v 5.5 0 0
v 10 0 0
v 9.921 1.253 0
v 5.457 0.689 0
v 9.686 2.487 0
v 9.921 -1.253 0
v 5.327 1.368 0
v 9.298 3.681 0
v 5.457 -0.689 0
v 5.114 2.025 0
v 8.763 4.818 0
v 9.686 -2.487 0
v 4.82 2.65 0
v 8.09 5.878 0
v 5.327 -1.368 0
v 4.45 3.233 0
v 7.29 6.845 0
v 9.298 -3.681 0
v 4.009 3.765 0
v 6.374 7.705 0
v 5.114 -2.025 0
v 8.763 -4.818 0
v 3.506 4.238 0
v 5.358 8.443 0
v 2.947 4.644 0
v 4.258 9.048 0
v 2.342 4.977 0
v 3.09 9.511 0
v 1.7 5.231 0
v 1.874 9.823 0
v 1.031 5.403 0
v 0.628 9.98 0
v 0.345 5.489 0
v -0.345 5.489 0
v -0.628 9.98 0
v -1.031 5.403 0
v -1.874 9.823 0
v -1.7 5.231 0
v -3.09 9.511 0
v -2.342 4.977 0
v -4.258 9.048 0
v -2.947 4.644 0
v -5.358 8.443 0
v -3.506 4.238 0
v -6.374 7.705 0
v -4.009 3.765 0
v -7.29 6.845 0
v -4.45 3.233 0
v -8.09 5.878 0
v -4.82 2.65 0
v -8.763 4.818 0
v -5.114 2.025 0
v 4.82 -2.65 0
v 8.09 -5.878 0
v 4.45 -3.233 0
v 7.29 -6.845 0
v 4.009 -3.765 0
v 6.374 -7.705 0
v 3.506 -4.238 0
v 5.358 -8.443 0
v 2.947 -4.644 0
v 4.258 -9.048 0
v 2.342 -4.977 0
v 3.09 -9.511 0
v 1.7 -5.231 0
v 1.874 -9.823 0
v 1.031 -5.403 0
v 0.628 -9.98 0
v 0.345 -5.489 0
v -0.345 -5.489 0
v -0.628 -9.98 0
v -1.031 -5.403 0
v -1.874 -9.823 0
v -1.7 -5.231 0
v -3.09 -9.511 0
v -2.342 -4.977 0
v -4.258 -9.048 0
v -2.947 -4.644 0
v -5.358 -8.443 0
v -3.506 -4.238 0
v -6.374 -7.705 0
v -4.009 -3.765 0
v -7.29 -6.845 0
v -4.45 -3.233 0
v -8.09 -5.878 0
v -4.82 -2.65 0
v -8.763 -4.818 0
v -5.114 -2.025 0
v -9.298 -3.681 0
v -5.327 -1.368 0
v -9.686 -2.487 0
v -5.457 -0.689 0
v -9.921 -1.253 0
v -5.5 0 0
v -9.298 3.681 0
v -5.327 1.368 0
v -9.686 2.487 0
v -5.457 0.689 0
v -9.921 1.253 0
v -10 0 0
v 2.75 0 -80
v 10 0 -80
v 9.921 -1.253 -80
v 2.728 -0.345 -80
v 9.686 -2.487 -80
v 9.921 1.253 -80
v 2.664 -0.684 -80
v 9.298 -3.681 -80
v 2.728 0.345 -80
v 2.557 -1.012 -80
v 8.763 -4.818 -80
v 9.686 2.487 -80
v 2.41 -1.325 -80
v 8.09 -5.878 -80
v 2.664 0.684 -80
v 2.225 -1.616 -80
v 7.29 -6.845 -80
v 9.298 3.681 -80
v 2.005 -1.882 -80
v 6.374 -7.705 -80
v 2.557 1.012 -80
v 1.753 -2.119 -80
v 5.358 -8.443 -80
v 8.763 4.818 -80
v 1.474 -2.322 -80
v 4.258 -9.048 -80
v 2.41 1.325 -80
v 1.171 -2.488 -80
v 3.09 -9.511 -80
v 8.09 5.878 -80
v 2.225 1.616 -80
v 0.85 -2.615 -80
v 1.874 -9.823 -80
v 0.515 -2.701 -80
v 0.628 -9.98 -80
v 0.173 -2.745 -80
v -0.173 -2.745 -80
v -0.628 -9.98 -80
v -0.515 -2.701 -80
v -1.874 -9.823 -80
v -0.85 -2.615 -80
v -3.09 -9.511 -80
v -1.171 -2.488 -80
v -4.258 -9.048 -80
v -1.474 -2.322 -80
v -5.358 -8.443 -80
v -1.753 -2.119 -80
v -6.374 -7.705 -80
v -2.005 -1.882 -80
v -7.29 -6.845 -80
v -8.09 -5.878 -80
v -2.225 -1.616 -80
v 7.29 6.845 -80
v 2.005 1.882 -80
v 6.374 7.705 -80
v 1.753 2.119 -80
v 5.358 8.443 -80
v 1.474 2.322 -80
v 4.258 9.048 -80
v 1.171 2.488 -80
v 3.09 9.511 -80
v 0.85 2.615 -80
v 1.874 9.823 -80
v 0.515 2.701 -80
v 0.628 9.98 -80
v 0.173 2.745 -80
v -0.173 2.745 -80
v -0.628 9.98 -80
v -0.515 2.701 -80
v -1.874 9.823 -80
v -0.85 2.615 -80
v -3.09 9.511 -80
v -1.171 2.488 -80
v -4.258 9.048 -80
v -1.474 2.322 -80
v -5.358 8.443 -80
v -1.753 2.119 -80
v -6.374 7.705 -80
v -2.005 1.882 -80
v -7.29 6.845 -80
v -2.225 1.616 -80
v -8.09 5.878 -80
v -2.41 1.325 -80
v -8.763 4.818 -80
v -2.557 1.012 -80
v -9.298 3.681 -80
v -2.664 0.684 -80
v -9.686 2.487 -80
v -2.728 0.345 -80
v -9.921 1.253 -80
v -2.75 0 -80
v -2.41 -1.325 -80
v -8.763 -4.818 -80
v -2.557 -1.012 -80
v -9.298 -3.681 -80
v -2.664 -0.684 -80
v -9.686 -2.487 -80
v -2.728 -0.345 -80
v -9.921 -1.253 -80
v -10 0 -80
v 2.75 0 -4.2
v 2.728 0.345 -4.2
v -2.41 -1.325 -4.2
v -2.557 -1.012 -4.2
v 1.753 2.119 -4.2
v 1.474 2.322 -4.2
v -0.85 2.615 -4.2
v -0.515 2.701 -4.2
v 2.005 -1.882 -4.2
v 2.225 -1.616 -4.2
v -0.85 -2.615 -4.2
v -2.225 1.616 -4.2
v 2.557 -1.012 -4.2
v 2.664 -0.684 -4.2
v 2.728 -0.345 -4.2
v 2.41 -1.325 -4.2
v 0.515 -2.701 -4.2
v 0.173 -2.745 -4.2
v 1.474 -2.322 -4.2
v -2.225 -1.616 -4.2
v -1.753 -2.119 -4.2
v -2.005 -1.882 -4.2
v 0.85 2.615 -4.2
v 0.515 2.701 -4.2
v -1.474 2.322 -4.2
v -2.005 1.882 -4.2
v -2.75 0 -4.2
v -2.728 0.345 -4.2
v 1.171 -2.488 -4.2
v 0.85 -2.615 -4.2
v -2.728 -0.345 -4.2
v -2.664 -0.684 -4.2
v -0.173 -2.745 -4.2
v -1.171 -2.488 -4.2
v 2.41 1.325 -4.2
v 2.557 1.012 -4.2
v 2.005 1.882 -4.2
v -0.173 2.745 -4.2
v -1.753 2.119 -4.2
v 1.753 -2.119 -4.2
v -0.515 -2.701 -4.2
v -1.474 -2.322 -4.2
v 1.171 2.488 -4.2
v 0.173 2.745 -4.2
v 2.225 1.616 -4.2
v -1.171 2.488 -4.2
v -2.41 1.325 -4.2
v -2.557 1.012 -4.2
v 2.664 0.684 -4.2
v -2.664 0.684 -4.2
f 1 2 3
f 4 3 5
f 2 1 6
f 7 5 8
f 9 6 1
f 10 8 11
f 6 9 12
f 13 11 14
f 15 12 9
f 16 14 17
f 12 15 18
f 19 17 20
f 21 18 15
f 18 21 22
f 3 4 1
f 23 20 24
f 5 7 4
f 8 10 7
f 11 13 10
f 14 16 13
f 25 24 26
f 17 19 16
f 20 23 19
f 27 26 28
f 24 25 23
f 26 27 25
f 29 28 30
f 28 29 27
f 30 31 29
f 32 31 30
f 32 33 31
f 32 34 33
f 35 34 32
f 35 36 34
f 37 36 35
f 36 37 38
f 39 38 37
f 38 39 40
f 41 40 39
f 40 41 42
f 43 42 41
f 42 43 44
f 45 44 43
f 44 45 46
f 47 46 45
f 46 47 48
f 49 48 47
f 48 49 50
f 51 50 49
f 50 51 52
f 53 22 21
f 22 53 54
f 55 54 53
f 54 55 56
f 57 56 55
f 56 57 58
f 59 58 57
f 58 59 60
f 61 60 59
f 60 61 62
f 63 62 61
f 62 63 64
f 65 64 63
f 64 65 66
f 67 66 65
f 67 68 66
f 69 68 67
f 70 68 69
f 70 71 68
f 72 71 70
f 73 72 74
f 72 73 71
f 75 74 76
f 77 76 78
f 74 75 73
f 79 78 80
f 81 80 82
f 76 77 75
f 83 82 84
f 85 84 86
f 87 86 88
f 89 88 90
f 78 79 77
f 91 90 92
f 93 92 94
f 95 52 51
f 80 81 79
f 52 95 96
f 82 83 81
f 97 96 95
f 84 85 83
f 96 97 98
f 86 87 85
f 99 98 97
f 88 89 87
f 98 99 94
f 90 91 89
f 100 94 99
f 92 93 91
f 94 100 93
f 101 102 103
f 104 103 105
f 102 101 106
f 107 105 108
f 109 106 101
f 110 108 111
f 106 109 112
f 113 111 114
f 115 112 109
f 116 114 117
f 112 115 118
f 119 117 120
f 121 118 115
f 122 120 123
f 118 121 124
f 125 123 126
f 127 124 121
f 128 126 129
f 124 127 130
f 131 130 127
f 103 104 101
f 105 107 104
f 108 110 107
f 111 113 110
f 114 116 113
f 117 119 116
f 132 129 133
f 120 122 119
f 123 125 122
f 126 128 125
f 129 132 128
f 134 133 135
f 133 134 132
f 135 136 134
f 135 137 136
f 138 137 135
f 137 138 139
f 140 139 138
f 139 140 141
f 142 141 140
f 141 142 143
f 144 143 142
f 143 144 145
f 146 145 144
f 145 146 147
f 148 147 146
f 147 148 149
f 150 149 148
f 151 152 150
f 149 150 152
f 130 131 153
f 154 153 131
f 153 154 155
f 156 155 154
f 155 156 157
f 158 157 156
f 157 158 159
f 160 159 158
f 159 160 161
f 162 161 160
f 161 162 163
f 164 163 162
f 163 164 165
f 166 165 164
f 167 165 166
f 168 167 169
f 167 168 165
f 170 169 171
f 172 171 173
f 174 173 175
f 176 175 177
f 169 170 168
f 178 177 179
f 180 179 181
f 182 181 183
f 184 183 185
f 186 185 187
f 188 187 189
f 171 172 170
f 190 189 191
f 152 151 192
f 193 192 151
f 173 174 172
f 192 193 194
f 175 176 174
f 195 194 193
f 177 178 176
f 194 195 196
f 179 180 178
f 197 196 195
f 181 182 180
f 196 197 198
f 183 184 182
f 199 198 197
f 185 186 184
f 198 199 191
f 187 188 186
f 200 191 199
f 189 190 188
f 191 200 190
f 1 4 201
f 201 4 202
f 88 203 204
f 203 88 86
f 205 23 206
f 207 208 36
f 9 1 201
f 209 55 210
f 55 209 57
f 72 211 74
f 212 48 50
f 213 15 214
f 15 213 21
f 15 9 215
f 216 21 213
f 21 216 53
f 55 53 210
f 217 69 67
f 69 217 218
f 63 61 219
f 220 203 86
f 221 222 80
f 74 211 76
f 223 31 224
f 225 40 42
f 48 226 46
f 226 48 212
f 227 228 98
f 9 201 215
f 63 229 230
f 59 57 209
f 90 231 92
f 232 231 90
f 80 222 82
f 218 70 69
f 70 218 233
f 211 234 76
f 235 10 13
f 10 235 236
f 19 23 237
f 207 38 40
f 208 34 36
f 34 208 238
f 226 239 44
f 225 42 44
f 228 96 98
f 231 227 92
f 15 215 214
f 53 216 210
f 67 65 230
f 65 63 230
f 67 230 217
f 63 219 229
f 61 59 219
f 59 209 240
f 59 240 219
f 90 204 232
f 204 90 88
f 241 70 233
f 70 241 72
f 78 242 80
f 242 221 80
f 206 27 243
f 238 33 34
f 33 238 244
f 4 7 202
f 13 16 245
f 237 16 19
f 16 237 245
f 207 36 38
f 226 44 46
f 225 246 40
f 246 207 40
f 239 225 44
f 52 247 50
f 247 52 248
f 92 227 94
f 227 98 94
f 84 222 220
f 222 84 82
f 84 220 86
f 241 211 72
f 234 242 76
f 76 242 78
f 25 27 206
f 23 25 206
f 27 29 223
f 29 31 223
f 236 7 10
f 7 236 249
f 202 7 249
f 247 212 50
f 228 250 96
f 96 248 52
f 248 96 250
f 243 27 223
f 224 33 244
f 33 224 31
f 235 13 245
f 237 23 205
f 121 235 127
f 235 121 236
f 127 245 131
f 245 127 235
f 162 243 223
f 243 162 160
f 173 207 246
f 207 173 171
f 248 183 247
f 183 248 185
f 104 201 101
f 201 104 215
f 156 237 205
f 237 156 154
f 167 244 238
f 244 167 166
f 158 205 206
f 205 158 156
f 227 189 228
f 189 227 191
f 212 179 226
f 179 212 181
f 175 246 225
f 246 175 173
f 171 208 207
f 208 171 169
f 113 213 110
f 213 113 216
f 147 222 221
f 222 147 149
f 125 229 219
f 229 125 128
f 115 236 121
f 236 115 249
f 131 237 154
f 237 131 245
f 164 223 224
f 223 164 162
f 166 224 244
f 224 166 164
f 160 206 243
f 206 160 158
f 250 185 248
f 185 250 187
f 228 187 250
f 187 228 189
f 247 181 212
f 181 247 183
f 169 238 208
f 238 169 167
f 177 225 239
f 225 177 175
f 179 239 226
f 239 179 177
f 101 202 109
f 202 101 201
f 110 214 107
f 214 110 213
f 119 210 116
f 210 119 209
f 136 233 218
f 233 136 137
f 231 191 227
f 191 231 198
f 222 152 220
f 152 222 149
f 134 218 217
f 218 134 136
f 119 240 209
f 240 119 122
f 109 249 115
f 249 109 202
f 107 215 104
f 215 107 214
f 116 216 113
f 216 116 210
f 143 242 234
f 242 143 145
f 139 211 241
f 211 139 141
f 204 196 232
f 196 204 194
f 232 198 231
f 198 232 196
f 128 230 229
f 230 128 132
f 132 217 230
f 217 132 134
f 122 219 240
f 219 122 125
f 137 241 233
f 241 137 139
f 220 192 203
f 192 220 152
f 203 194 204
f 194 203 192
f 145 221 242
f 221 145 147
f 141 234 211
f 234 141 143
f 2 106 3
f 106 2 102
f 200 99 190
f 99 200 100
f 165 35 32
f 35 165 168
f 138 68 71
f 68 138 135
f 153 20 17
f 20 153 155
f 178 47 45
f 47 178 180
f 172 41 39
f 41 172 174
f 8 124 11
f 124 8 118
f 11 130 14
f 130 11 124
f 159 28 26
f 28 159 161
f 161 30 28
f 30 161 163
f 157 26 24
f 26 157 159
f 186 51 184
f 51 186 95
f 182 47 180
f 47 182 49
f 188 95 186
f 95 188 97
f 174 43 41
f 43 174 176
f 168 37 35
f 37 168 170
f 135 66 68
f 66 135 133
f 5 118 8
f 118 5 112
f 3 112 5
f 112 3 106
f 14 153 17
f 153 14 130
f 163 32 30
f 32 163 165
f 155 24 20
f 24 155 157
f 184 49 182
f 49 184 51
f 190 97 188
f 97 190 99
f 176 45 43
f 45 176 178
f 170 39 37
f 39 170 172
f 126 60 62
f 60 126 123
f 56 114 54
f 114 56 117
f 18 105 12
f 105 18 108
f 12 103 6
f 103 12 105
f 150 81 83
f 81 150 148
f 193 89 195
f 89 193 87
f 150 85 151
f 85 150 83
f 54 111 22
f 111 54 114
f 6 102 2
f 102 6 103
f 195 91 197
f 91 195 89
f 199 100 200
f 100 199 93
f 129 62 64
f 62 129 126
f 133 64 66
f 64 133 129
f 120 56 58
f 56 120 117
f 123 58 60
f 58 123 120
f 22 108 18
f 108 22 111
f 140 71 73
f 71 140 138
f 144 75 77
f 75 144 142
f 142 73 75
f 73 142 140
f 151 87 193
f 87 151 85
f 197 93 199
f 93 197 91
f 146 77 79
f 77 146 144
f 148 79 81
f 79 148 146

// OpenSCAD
$fn = 50;


difference() {
	union() {
		translate(v = [0, 0, -80.0000000000]) {
			cylinder(h = 80, r = 10.0000000000);
		}
		cylinder(h = 0, r = 20.0000000000);
	}
	union() {
		translate(v = [0, 0, 0]) {
			rotate(a = [0, 0, 0]) {
				difference() {
					union() {
						#translate(v = [0, 0, -80.0000000000]) {
							cylinder(h = 80, r = 2.2500000000);
						}
						#translate(v = [0, 0, -4.2000000000]) {
							cylinder(h = 4.2000000000, r1 = 2.7500000000, r2 = 5.5000000000);
						}
						#translate(v = [0, 0, -80.0000000000]) {
							cylinder(h = 80, r = 2.7500000000);
						}
						#translate(v = [0, 0, -80.0000000000]) {
							cylinder(h = 80, r = 2.2500000000);
						}
					}
					union();
				}
			}
		}
	}
}
